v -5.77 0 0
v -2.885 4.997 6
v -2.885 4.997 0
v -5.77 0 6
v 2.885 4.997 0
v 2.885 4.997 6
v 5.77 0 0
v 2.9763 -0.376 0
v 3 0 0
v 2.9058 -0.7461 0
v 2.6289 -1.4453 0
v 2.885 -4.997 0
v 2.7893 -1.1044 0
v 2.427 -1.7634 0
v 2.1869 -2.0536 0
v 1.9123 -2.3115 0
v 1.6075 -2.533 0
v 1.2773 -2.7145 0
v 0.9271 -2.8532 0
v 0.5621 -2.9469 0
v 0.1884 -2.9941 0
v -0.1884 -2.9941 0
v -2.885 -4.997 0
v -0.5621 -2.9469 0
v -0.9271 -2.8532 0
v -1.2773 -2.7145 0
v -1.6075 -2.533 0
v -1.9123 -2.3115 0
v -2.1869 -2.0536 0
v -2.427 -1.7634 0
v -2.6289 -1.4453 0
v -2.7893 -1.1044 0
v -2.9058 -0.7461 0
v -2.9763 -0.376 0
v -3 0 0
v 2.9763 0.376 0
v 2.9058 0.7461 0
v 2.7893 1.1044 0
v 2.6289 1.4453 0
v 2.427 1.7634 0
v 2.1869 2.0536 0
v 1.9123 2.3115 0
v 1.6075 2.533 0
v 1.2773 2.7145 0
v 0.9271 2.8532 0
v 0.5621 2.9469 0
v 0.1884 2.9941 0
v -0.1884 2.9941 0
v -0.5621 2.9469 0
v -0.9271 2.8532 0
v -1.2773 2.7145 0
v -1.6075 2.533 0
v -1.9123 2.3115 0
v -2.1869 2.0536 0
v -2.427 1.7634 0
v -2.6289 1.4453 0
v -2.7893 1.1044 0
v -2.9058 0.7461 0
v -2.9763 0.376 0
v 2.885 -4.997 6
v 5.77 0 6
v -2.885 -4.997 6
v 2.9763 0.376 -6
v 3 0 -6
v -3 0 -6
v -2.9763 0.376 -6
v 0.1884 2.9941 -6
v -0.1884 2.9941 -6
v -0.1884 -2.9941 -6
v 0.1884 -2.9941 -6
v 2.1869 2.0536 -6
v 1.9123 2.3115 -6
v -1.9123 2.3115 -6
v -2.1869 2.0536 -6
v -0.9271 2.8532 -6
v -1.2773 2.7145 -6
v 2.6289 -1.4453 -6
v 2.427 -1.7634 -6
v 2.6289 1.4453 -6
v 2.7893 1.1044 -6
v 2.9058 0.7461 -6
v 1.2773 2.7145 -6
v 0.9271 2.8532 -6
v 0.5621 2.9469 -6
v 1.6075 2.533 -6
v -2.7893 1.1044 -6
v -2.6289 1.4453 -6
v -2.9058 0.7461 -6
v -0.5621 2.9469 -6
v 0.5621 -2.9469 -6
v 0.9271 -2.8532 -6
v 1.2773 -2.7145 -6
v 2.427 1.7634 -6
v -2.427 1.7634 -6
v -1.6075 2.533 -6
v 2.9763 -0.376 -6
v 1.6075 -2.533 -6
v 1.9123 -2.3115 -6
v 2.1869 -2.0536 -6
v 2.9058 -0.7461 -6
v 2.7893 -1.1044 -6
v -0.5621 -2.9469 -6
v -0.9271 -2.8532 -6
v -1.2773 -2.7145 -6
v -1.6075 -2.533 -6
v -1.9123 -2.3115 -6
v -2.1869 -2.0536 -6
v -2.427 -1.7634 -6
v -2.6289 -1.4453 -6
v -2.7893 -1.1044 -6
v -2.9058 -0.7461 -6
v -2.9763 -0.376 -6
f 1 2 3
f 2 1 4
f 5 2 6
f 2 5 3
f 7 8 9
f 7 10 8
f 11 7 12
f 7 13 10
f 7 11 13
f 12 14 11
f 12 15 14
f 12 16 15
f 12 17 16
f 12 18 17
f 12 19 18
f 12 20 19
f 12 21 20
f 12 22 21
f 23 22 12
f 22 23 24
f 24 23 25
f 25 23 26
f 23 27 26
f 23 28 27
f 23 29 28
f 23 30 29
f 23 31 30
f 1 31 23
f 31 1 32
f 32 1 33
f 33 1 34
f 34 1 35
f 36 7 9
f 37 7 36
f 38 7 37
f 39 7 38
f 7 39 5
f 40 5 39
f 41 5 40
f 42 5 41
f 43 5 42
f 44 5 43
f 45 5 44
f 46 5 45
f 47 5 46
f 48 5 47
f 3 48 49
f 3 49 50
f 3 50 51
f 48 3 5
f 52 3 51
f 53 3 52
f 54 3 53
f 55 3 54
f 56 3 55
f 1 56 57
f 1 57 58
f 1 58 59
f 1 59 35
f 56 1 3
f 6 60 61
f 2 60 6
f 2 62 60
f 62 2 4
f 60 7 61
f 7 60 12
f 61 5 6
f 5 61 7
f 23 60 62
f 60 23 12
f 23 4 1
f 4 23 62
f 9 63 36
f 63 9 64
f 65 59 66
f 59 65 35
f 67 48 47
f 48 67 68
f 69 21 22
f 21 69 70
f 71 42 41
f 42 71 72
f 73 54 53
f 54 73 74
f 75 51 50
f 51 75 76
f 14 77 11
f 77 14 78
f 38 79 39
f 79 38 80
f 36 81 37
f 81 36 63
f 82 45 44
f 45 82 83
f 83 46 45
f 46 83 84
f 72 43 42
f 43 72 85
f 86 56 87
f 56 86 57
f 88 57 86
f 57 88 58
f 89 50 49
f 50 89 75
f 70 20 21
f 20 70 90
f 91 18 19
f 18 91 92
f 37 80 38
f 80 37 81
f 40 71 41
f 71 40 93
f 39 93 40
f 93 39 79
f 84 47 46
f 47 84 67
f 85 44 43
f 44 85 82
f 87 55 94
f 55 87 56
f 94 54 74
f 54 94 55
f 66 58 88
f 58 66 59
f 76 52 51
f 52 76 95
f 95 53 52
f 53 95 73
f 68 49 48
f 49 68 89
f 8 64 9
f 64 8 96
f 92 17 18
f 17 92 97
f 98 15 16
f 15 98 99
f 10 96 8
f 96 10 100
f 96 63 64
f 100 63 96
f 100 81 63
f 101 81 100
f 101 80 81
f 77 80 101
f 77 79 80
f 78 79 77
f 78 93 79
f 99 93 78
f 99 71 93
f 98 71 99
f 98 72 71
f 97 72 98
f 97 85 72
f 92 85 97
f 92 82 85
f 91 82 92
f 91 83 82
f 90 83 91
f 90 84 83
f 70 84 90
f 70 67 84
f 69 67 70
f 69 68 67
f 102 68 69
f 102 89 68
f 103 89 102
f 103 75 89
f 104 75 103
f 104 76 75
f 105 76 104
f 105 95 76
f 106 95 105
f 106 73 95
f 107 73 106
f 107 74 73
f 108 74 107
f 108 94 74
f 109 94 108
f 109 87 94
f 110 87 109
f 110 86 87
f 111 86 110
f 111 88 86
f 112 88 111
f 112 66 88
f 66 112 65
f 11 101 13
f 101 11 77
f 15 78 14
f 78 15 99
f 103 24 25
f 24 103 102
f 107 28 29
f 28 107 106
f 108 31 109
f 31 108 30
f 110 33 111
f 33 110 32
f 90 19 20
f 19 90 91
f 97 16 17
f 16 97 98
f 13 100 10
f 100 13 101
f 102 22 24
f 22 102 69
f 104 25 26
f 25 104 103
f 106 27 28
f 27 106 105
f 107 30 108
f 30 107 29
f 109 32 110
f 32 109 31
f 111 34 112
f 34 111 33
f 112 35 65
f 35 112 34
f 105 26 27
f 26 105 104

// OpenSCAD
$fn = 50;


difference() {
	union() {
		translate(v = [0, 0, 0]) {
			rotate(a = [0, 0, 0]) {
				translate(v = [0, 0, 0]) {
					rotate(a = [0, 0, 0]) {
						linear_extrude(height = 6) {
							polygon(points = [[5.7700000000, 0.0000000000], [2.8850000000, 4.9969665798], [-2.8850000000, 4.9969665798], [-5.7700000000, 0.0000000000], [-2.8850000000, -4.9969665798], [2.8850000000, -4.9969665798]]);
						}
					}
				}
			}
		}
		translate(v = [0, 0, -6]) {
			rotate(a = [0, 0, 0]) {
				cylinder(h = 6, r = 3.0000000000);
			}
		}
	}
	union();
}
